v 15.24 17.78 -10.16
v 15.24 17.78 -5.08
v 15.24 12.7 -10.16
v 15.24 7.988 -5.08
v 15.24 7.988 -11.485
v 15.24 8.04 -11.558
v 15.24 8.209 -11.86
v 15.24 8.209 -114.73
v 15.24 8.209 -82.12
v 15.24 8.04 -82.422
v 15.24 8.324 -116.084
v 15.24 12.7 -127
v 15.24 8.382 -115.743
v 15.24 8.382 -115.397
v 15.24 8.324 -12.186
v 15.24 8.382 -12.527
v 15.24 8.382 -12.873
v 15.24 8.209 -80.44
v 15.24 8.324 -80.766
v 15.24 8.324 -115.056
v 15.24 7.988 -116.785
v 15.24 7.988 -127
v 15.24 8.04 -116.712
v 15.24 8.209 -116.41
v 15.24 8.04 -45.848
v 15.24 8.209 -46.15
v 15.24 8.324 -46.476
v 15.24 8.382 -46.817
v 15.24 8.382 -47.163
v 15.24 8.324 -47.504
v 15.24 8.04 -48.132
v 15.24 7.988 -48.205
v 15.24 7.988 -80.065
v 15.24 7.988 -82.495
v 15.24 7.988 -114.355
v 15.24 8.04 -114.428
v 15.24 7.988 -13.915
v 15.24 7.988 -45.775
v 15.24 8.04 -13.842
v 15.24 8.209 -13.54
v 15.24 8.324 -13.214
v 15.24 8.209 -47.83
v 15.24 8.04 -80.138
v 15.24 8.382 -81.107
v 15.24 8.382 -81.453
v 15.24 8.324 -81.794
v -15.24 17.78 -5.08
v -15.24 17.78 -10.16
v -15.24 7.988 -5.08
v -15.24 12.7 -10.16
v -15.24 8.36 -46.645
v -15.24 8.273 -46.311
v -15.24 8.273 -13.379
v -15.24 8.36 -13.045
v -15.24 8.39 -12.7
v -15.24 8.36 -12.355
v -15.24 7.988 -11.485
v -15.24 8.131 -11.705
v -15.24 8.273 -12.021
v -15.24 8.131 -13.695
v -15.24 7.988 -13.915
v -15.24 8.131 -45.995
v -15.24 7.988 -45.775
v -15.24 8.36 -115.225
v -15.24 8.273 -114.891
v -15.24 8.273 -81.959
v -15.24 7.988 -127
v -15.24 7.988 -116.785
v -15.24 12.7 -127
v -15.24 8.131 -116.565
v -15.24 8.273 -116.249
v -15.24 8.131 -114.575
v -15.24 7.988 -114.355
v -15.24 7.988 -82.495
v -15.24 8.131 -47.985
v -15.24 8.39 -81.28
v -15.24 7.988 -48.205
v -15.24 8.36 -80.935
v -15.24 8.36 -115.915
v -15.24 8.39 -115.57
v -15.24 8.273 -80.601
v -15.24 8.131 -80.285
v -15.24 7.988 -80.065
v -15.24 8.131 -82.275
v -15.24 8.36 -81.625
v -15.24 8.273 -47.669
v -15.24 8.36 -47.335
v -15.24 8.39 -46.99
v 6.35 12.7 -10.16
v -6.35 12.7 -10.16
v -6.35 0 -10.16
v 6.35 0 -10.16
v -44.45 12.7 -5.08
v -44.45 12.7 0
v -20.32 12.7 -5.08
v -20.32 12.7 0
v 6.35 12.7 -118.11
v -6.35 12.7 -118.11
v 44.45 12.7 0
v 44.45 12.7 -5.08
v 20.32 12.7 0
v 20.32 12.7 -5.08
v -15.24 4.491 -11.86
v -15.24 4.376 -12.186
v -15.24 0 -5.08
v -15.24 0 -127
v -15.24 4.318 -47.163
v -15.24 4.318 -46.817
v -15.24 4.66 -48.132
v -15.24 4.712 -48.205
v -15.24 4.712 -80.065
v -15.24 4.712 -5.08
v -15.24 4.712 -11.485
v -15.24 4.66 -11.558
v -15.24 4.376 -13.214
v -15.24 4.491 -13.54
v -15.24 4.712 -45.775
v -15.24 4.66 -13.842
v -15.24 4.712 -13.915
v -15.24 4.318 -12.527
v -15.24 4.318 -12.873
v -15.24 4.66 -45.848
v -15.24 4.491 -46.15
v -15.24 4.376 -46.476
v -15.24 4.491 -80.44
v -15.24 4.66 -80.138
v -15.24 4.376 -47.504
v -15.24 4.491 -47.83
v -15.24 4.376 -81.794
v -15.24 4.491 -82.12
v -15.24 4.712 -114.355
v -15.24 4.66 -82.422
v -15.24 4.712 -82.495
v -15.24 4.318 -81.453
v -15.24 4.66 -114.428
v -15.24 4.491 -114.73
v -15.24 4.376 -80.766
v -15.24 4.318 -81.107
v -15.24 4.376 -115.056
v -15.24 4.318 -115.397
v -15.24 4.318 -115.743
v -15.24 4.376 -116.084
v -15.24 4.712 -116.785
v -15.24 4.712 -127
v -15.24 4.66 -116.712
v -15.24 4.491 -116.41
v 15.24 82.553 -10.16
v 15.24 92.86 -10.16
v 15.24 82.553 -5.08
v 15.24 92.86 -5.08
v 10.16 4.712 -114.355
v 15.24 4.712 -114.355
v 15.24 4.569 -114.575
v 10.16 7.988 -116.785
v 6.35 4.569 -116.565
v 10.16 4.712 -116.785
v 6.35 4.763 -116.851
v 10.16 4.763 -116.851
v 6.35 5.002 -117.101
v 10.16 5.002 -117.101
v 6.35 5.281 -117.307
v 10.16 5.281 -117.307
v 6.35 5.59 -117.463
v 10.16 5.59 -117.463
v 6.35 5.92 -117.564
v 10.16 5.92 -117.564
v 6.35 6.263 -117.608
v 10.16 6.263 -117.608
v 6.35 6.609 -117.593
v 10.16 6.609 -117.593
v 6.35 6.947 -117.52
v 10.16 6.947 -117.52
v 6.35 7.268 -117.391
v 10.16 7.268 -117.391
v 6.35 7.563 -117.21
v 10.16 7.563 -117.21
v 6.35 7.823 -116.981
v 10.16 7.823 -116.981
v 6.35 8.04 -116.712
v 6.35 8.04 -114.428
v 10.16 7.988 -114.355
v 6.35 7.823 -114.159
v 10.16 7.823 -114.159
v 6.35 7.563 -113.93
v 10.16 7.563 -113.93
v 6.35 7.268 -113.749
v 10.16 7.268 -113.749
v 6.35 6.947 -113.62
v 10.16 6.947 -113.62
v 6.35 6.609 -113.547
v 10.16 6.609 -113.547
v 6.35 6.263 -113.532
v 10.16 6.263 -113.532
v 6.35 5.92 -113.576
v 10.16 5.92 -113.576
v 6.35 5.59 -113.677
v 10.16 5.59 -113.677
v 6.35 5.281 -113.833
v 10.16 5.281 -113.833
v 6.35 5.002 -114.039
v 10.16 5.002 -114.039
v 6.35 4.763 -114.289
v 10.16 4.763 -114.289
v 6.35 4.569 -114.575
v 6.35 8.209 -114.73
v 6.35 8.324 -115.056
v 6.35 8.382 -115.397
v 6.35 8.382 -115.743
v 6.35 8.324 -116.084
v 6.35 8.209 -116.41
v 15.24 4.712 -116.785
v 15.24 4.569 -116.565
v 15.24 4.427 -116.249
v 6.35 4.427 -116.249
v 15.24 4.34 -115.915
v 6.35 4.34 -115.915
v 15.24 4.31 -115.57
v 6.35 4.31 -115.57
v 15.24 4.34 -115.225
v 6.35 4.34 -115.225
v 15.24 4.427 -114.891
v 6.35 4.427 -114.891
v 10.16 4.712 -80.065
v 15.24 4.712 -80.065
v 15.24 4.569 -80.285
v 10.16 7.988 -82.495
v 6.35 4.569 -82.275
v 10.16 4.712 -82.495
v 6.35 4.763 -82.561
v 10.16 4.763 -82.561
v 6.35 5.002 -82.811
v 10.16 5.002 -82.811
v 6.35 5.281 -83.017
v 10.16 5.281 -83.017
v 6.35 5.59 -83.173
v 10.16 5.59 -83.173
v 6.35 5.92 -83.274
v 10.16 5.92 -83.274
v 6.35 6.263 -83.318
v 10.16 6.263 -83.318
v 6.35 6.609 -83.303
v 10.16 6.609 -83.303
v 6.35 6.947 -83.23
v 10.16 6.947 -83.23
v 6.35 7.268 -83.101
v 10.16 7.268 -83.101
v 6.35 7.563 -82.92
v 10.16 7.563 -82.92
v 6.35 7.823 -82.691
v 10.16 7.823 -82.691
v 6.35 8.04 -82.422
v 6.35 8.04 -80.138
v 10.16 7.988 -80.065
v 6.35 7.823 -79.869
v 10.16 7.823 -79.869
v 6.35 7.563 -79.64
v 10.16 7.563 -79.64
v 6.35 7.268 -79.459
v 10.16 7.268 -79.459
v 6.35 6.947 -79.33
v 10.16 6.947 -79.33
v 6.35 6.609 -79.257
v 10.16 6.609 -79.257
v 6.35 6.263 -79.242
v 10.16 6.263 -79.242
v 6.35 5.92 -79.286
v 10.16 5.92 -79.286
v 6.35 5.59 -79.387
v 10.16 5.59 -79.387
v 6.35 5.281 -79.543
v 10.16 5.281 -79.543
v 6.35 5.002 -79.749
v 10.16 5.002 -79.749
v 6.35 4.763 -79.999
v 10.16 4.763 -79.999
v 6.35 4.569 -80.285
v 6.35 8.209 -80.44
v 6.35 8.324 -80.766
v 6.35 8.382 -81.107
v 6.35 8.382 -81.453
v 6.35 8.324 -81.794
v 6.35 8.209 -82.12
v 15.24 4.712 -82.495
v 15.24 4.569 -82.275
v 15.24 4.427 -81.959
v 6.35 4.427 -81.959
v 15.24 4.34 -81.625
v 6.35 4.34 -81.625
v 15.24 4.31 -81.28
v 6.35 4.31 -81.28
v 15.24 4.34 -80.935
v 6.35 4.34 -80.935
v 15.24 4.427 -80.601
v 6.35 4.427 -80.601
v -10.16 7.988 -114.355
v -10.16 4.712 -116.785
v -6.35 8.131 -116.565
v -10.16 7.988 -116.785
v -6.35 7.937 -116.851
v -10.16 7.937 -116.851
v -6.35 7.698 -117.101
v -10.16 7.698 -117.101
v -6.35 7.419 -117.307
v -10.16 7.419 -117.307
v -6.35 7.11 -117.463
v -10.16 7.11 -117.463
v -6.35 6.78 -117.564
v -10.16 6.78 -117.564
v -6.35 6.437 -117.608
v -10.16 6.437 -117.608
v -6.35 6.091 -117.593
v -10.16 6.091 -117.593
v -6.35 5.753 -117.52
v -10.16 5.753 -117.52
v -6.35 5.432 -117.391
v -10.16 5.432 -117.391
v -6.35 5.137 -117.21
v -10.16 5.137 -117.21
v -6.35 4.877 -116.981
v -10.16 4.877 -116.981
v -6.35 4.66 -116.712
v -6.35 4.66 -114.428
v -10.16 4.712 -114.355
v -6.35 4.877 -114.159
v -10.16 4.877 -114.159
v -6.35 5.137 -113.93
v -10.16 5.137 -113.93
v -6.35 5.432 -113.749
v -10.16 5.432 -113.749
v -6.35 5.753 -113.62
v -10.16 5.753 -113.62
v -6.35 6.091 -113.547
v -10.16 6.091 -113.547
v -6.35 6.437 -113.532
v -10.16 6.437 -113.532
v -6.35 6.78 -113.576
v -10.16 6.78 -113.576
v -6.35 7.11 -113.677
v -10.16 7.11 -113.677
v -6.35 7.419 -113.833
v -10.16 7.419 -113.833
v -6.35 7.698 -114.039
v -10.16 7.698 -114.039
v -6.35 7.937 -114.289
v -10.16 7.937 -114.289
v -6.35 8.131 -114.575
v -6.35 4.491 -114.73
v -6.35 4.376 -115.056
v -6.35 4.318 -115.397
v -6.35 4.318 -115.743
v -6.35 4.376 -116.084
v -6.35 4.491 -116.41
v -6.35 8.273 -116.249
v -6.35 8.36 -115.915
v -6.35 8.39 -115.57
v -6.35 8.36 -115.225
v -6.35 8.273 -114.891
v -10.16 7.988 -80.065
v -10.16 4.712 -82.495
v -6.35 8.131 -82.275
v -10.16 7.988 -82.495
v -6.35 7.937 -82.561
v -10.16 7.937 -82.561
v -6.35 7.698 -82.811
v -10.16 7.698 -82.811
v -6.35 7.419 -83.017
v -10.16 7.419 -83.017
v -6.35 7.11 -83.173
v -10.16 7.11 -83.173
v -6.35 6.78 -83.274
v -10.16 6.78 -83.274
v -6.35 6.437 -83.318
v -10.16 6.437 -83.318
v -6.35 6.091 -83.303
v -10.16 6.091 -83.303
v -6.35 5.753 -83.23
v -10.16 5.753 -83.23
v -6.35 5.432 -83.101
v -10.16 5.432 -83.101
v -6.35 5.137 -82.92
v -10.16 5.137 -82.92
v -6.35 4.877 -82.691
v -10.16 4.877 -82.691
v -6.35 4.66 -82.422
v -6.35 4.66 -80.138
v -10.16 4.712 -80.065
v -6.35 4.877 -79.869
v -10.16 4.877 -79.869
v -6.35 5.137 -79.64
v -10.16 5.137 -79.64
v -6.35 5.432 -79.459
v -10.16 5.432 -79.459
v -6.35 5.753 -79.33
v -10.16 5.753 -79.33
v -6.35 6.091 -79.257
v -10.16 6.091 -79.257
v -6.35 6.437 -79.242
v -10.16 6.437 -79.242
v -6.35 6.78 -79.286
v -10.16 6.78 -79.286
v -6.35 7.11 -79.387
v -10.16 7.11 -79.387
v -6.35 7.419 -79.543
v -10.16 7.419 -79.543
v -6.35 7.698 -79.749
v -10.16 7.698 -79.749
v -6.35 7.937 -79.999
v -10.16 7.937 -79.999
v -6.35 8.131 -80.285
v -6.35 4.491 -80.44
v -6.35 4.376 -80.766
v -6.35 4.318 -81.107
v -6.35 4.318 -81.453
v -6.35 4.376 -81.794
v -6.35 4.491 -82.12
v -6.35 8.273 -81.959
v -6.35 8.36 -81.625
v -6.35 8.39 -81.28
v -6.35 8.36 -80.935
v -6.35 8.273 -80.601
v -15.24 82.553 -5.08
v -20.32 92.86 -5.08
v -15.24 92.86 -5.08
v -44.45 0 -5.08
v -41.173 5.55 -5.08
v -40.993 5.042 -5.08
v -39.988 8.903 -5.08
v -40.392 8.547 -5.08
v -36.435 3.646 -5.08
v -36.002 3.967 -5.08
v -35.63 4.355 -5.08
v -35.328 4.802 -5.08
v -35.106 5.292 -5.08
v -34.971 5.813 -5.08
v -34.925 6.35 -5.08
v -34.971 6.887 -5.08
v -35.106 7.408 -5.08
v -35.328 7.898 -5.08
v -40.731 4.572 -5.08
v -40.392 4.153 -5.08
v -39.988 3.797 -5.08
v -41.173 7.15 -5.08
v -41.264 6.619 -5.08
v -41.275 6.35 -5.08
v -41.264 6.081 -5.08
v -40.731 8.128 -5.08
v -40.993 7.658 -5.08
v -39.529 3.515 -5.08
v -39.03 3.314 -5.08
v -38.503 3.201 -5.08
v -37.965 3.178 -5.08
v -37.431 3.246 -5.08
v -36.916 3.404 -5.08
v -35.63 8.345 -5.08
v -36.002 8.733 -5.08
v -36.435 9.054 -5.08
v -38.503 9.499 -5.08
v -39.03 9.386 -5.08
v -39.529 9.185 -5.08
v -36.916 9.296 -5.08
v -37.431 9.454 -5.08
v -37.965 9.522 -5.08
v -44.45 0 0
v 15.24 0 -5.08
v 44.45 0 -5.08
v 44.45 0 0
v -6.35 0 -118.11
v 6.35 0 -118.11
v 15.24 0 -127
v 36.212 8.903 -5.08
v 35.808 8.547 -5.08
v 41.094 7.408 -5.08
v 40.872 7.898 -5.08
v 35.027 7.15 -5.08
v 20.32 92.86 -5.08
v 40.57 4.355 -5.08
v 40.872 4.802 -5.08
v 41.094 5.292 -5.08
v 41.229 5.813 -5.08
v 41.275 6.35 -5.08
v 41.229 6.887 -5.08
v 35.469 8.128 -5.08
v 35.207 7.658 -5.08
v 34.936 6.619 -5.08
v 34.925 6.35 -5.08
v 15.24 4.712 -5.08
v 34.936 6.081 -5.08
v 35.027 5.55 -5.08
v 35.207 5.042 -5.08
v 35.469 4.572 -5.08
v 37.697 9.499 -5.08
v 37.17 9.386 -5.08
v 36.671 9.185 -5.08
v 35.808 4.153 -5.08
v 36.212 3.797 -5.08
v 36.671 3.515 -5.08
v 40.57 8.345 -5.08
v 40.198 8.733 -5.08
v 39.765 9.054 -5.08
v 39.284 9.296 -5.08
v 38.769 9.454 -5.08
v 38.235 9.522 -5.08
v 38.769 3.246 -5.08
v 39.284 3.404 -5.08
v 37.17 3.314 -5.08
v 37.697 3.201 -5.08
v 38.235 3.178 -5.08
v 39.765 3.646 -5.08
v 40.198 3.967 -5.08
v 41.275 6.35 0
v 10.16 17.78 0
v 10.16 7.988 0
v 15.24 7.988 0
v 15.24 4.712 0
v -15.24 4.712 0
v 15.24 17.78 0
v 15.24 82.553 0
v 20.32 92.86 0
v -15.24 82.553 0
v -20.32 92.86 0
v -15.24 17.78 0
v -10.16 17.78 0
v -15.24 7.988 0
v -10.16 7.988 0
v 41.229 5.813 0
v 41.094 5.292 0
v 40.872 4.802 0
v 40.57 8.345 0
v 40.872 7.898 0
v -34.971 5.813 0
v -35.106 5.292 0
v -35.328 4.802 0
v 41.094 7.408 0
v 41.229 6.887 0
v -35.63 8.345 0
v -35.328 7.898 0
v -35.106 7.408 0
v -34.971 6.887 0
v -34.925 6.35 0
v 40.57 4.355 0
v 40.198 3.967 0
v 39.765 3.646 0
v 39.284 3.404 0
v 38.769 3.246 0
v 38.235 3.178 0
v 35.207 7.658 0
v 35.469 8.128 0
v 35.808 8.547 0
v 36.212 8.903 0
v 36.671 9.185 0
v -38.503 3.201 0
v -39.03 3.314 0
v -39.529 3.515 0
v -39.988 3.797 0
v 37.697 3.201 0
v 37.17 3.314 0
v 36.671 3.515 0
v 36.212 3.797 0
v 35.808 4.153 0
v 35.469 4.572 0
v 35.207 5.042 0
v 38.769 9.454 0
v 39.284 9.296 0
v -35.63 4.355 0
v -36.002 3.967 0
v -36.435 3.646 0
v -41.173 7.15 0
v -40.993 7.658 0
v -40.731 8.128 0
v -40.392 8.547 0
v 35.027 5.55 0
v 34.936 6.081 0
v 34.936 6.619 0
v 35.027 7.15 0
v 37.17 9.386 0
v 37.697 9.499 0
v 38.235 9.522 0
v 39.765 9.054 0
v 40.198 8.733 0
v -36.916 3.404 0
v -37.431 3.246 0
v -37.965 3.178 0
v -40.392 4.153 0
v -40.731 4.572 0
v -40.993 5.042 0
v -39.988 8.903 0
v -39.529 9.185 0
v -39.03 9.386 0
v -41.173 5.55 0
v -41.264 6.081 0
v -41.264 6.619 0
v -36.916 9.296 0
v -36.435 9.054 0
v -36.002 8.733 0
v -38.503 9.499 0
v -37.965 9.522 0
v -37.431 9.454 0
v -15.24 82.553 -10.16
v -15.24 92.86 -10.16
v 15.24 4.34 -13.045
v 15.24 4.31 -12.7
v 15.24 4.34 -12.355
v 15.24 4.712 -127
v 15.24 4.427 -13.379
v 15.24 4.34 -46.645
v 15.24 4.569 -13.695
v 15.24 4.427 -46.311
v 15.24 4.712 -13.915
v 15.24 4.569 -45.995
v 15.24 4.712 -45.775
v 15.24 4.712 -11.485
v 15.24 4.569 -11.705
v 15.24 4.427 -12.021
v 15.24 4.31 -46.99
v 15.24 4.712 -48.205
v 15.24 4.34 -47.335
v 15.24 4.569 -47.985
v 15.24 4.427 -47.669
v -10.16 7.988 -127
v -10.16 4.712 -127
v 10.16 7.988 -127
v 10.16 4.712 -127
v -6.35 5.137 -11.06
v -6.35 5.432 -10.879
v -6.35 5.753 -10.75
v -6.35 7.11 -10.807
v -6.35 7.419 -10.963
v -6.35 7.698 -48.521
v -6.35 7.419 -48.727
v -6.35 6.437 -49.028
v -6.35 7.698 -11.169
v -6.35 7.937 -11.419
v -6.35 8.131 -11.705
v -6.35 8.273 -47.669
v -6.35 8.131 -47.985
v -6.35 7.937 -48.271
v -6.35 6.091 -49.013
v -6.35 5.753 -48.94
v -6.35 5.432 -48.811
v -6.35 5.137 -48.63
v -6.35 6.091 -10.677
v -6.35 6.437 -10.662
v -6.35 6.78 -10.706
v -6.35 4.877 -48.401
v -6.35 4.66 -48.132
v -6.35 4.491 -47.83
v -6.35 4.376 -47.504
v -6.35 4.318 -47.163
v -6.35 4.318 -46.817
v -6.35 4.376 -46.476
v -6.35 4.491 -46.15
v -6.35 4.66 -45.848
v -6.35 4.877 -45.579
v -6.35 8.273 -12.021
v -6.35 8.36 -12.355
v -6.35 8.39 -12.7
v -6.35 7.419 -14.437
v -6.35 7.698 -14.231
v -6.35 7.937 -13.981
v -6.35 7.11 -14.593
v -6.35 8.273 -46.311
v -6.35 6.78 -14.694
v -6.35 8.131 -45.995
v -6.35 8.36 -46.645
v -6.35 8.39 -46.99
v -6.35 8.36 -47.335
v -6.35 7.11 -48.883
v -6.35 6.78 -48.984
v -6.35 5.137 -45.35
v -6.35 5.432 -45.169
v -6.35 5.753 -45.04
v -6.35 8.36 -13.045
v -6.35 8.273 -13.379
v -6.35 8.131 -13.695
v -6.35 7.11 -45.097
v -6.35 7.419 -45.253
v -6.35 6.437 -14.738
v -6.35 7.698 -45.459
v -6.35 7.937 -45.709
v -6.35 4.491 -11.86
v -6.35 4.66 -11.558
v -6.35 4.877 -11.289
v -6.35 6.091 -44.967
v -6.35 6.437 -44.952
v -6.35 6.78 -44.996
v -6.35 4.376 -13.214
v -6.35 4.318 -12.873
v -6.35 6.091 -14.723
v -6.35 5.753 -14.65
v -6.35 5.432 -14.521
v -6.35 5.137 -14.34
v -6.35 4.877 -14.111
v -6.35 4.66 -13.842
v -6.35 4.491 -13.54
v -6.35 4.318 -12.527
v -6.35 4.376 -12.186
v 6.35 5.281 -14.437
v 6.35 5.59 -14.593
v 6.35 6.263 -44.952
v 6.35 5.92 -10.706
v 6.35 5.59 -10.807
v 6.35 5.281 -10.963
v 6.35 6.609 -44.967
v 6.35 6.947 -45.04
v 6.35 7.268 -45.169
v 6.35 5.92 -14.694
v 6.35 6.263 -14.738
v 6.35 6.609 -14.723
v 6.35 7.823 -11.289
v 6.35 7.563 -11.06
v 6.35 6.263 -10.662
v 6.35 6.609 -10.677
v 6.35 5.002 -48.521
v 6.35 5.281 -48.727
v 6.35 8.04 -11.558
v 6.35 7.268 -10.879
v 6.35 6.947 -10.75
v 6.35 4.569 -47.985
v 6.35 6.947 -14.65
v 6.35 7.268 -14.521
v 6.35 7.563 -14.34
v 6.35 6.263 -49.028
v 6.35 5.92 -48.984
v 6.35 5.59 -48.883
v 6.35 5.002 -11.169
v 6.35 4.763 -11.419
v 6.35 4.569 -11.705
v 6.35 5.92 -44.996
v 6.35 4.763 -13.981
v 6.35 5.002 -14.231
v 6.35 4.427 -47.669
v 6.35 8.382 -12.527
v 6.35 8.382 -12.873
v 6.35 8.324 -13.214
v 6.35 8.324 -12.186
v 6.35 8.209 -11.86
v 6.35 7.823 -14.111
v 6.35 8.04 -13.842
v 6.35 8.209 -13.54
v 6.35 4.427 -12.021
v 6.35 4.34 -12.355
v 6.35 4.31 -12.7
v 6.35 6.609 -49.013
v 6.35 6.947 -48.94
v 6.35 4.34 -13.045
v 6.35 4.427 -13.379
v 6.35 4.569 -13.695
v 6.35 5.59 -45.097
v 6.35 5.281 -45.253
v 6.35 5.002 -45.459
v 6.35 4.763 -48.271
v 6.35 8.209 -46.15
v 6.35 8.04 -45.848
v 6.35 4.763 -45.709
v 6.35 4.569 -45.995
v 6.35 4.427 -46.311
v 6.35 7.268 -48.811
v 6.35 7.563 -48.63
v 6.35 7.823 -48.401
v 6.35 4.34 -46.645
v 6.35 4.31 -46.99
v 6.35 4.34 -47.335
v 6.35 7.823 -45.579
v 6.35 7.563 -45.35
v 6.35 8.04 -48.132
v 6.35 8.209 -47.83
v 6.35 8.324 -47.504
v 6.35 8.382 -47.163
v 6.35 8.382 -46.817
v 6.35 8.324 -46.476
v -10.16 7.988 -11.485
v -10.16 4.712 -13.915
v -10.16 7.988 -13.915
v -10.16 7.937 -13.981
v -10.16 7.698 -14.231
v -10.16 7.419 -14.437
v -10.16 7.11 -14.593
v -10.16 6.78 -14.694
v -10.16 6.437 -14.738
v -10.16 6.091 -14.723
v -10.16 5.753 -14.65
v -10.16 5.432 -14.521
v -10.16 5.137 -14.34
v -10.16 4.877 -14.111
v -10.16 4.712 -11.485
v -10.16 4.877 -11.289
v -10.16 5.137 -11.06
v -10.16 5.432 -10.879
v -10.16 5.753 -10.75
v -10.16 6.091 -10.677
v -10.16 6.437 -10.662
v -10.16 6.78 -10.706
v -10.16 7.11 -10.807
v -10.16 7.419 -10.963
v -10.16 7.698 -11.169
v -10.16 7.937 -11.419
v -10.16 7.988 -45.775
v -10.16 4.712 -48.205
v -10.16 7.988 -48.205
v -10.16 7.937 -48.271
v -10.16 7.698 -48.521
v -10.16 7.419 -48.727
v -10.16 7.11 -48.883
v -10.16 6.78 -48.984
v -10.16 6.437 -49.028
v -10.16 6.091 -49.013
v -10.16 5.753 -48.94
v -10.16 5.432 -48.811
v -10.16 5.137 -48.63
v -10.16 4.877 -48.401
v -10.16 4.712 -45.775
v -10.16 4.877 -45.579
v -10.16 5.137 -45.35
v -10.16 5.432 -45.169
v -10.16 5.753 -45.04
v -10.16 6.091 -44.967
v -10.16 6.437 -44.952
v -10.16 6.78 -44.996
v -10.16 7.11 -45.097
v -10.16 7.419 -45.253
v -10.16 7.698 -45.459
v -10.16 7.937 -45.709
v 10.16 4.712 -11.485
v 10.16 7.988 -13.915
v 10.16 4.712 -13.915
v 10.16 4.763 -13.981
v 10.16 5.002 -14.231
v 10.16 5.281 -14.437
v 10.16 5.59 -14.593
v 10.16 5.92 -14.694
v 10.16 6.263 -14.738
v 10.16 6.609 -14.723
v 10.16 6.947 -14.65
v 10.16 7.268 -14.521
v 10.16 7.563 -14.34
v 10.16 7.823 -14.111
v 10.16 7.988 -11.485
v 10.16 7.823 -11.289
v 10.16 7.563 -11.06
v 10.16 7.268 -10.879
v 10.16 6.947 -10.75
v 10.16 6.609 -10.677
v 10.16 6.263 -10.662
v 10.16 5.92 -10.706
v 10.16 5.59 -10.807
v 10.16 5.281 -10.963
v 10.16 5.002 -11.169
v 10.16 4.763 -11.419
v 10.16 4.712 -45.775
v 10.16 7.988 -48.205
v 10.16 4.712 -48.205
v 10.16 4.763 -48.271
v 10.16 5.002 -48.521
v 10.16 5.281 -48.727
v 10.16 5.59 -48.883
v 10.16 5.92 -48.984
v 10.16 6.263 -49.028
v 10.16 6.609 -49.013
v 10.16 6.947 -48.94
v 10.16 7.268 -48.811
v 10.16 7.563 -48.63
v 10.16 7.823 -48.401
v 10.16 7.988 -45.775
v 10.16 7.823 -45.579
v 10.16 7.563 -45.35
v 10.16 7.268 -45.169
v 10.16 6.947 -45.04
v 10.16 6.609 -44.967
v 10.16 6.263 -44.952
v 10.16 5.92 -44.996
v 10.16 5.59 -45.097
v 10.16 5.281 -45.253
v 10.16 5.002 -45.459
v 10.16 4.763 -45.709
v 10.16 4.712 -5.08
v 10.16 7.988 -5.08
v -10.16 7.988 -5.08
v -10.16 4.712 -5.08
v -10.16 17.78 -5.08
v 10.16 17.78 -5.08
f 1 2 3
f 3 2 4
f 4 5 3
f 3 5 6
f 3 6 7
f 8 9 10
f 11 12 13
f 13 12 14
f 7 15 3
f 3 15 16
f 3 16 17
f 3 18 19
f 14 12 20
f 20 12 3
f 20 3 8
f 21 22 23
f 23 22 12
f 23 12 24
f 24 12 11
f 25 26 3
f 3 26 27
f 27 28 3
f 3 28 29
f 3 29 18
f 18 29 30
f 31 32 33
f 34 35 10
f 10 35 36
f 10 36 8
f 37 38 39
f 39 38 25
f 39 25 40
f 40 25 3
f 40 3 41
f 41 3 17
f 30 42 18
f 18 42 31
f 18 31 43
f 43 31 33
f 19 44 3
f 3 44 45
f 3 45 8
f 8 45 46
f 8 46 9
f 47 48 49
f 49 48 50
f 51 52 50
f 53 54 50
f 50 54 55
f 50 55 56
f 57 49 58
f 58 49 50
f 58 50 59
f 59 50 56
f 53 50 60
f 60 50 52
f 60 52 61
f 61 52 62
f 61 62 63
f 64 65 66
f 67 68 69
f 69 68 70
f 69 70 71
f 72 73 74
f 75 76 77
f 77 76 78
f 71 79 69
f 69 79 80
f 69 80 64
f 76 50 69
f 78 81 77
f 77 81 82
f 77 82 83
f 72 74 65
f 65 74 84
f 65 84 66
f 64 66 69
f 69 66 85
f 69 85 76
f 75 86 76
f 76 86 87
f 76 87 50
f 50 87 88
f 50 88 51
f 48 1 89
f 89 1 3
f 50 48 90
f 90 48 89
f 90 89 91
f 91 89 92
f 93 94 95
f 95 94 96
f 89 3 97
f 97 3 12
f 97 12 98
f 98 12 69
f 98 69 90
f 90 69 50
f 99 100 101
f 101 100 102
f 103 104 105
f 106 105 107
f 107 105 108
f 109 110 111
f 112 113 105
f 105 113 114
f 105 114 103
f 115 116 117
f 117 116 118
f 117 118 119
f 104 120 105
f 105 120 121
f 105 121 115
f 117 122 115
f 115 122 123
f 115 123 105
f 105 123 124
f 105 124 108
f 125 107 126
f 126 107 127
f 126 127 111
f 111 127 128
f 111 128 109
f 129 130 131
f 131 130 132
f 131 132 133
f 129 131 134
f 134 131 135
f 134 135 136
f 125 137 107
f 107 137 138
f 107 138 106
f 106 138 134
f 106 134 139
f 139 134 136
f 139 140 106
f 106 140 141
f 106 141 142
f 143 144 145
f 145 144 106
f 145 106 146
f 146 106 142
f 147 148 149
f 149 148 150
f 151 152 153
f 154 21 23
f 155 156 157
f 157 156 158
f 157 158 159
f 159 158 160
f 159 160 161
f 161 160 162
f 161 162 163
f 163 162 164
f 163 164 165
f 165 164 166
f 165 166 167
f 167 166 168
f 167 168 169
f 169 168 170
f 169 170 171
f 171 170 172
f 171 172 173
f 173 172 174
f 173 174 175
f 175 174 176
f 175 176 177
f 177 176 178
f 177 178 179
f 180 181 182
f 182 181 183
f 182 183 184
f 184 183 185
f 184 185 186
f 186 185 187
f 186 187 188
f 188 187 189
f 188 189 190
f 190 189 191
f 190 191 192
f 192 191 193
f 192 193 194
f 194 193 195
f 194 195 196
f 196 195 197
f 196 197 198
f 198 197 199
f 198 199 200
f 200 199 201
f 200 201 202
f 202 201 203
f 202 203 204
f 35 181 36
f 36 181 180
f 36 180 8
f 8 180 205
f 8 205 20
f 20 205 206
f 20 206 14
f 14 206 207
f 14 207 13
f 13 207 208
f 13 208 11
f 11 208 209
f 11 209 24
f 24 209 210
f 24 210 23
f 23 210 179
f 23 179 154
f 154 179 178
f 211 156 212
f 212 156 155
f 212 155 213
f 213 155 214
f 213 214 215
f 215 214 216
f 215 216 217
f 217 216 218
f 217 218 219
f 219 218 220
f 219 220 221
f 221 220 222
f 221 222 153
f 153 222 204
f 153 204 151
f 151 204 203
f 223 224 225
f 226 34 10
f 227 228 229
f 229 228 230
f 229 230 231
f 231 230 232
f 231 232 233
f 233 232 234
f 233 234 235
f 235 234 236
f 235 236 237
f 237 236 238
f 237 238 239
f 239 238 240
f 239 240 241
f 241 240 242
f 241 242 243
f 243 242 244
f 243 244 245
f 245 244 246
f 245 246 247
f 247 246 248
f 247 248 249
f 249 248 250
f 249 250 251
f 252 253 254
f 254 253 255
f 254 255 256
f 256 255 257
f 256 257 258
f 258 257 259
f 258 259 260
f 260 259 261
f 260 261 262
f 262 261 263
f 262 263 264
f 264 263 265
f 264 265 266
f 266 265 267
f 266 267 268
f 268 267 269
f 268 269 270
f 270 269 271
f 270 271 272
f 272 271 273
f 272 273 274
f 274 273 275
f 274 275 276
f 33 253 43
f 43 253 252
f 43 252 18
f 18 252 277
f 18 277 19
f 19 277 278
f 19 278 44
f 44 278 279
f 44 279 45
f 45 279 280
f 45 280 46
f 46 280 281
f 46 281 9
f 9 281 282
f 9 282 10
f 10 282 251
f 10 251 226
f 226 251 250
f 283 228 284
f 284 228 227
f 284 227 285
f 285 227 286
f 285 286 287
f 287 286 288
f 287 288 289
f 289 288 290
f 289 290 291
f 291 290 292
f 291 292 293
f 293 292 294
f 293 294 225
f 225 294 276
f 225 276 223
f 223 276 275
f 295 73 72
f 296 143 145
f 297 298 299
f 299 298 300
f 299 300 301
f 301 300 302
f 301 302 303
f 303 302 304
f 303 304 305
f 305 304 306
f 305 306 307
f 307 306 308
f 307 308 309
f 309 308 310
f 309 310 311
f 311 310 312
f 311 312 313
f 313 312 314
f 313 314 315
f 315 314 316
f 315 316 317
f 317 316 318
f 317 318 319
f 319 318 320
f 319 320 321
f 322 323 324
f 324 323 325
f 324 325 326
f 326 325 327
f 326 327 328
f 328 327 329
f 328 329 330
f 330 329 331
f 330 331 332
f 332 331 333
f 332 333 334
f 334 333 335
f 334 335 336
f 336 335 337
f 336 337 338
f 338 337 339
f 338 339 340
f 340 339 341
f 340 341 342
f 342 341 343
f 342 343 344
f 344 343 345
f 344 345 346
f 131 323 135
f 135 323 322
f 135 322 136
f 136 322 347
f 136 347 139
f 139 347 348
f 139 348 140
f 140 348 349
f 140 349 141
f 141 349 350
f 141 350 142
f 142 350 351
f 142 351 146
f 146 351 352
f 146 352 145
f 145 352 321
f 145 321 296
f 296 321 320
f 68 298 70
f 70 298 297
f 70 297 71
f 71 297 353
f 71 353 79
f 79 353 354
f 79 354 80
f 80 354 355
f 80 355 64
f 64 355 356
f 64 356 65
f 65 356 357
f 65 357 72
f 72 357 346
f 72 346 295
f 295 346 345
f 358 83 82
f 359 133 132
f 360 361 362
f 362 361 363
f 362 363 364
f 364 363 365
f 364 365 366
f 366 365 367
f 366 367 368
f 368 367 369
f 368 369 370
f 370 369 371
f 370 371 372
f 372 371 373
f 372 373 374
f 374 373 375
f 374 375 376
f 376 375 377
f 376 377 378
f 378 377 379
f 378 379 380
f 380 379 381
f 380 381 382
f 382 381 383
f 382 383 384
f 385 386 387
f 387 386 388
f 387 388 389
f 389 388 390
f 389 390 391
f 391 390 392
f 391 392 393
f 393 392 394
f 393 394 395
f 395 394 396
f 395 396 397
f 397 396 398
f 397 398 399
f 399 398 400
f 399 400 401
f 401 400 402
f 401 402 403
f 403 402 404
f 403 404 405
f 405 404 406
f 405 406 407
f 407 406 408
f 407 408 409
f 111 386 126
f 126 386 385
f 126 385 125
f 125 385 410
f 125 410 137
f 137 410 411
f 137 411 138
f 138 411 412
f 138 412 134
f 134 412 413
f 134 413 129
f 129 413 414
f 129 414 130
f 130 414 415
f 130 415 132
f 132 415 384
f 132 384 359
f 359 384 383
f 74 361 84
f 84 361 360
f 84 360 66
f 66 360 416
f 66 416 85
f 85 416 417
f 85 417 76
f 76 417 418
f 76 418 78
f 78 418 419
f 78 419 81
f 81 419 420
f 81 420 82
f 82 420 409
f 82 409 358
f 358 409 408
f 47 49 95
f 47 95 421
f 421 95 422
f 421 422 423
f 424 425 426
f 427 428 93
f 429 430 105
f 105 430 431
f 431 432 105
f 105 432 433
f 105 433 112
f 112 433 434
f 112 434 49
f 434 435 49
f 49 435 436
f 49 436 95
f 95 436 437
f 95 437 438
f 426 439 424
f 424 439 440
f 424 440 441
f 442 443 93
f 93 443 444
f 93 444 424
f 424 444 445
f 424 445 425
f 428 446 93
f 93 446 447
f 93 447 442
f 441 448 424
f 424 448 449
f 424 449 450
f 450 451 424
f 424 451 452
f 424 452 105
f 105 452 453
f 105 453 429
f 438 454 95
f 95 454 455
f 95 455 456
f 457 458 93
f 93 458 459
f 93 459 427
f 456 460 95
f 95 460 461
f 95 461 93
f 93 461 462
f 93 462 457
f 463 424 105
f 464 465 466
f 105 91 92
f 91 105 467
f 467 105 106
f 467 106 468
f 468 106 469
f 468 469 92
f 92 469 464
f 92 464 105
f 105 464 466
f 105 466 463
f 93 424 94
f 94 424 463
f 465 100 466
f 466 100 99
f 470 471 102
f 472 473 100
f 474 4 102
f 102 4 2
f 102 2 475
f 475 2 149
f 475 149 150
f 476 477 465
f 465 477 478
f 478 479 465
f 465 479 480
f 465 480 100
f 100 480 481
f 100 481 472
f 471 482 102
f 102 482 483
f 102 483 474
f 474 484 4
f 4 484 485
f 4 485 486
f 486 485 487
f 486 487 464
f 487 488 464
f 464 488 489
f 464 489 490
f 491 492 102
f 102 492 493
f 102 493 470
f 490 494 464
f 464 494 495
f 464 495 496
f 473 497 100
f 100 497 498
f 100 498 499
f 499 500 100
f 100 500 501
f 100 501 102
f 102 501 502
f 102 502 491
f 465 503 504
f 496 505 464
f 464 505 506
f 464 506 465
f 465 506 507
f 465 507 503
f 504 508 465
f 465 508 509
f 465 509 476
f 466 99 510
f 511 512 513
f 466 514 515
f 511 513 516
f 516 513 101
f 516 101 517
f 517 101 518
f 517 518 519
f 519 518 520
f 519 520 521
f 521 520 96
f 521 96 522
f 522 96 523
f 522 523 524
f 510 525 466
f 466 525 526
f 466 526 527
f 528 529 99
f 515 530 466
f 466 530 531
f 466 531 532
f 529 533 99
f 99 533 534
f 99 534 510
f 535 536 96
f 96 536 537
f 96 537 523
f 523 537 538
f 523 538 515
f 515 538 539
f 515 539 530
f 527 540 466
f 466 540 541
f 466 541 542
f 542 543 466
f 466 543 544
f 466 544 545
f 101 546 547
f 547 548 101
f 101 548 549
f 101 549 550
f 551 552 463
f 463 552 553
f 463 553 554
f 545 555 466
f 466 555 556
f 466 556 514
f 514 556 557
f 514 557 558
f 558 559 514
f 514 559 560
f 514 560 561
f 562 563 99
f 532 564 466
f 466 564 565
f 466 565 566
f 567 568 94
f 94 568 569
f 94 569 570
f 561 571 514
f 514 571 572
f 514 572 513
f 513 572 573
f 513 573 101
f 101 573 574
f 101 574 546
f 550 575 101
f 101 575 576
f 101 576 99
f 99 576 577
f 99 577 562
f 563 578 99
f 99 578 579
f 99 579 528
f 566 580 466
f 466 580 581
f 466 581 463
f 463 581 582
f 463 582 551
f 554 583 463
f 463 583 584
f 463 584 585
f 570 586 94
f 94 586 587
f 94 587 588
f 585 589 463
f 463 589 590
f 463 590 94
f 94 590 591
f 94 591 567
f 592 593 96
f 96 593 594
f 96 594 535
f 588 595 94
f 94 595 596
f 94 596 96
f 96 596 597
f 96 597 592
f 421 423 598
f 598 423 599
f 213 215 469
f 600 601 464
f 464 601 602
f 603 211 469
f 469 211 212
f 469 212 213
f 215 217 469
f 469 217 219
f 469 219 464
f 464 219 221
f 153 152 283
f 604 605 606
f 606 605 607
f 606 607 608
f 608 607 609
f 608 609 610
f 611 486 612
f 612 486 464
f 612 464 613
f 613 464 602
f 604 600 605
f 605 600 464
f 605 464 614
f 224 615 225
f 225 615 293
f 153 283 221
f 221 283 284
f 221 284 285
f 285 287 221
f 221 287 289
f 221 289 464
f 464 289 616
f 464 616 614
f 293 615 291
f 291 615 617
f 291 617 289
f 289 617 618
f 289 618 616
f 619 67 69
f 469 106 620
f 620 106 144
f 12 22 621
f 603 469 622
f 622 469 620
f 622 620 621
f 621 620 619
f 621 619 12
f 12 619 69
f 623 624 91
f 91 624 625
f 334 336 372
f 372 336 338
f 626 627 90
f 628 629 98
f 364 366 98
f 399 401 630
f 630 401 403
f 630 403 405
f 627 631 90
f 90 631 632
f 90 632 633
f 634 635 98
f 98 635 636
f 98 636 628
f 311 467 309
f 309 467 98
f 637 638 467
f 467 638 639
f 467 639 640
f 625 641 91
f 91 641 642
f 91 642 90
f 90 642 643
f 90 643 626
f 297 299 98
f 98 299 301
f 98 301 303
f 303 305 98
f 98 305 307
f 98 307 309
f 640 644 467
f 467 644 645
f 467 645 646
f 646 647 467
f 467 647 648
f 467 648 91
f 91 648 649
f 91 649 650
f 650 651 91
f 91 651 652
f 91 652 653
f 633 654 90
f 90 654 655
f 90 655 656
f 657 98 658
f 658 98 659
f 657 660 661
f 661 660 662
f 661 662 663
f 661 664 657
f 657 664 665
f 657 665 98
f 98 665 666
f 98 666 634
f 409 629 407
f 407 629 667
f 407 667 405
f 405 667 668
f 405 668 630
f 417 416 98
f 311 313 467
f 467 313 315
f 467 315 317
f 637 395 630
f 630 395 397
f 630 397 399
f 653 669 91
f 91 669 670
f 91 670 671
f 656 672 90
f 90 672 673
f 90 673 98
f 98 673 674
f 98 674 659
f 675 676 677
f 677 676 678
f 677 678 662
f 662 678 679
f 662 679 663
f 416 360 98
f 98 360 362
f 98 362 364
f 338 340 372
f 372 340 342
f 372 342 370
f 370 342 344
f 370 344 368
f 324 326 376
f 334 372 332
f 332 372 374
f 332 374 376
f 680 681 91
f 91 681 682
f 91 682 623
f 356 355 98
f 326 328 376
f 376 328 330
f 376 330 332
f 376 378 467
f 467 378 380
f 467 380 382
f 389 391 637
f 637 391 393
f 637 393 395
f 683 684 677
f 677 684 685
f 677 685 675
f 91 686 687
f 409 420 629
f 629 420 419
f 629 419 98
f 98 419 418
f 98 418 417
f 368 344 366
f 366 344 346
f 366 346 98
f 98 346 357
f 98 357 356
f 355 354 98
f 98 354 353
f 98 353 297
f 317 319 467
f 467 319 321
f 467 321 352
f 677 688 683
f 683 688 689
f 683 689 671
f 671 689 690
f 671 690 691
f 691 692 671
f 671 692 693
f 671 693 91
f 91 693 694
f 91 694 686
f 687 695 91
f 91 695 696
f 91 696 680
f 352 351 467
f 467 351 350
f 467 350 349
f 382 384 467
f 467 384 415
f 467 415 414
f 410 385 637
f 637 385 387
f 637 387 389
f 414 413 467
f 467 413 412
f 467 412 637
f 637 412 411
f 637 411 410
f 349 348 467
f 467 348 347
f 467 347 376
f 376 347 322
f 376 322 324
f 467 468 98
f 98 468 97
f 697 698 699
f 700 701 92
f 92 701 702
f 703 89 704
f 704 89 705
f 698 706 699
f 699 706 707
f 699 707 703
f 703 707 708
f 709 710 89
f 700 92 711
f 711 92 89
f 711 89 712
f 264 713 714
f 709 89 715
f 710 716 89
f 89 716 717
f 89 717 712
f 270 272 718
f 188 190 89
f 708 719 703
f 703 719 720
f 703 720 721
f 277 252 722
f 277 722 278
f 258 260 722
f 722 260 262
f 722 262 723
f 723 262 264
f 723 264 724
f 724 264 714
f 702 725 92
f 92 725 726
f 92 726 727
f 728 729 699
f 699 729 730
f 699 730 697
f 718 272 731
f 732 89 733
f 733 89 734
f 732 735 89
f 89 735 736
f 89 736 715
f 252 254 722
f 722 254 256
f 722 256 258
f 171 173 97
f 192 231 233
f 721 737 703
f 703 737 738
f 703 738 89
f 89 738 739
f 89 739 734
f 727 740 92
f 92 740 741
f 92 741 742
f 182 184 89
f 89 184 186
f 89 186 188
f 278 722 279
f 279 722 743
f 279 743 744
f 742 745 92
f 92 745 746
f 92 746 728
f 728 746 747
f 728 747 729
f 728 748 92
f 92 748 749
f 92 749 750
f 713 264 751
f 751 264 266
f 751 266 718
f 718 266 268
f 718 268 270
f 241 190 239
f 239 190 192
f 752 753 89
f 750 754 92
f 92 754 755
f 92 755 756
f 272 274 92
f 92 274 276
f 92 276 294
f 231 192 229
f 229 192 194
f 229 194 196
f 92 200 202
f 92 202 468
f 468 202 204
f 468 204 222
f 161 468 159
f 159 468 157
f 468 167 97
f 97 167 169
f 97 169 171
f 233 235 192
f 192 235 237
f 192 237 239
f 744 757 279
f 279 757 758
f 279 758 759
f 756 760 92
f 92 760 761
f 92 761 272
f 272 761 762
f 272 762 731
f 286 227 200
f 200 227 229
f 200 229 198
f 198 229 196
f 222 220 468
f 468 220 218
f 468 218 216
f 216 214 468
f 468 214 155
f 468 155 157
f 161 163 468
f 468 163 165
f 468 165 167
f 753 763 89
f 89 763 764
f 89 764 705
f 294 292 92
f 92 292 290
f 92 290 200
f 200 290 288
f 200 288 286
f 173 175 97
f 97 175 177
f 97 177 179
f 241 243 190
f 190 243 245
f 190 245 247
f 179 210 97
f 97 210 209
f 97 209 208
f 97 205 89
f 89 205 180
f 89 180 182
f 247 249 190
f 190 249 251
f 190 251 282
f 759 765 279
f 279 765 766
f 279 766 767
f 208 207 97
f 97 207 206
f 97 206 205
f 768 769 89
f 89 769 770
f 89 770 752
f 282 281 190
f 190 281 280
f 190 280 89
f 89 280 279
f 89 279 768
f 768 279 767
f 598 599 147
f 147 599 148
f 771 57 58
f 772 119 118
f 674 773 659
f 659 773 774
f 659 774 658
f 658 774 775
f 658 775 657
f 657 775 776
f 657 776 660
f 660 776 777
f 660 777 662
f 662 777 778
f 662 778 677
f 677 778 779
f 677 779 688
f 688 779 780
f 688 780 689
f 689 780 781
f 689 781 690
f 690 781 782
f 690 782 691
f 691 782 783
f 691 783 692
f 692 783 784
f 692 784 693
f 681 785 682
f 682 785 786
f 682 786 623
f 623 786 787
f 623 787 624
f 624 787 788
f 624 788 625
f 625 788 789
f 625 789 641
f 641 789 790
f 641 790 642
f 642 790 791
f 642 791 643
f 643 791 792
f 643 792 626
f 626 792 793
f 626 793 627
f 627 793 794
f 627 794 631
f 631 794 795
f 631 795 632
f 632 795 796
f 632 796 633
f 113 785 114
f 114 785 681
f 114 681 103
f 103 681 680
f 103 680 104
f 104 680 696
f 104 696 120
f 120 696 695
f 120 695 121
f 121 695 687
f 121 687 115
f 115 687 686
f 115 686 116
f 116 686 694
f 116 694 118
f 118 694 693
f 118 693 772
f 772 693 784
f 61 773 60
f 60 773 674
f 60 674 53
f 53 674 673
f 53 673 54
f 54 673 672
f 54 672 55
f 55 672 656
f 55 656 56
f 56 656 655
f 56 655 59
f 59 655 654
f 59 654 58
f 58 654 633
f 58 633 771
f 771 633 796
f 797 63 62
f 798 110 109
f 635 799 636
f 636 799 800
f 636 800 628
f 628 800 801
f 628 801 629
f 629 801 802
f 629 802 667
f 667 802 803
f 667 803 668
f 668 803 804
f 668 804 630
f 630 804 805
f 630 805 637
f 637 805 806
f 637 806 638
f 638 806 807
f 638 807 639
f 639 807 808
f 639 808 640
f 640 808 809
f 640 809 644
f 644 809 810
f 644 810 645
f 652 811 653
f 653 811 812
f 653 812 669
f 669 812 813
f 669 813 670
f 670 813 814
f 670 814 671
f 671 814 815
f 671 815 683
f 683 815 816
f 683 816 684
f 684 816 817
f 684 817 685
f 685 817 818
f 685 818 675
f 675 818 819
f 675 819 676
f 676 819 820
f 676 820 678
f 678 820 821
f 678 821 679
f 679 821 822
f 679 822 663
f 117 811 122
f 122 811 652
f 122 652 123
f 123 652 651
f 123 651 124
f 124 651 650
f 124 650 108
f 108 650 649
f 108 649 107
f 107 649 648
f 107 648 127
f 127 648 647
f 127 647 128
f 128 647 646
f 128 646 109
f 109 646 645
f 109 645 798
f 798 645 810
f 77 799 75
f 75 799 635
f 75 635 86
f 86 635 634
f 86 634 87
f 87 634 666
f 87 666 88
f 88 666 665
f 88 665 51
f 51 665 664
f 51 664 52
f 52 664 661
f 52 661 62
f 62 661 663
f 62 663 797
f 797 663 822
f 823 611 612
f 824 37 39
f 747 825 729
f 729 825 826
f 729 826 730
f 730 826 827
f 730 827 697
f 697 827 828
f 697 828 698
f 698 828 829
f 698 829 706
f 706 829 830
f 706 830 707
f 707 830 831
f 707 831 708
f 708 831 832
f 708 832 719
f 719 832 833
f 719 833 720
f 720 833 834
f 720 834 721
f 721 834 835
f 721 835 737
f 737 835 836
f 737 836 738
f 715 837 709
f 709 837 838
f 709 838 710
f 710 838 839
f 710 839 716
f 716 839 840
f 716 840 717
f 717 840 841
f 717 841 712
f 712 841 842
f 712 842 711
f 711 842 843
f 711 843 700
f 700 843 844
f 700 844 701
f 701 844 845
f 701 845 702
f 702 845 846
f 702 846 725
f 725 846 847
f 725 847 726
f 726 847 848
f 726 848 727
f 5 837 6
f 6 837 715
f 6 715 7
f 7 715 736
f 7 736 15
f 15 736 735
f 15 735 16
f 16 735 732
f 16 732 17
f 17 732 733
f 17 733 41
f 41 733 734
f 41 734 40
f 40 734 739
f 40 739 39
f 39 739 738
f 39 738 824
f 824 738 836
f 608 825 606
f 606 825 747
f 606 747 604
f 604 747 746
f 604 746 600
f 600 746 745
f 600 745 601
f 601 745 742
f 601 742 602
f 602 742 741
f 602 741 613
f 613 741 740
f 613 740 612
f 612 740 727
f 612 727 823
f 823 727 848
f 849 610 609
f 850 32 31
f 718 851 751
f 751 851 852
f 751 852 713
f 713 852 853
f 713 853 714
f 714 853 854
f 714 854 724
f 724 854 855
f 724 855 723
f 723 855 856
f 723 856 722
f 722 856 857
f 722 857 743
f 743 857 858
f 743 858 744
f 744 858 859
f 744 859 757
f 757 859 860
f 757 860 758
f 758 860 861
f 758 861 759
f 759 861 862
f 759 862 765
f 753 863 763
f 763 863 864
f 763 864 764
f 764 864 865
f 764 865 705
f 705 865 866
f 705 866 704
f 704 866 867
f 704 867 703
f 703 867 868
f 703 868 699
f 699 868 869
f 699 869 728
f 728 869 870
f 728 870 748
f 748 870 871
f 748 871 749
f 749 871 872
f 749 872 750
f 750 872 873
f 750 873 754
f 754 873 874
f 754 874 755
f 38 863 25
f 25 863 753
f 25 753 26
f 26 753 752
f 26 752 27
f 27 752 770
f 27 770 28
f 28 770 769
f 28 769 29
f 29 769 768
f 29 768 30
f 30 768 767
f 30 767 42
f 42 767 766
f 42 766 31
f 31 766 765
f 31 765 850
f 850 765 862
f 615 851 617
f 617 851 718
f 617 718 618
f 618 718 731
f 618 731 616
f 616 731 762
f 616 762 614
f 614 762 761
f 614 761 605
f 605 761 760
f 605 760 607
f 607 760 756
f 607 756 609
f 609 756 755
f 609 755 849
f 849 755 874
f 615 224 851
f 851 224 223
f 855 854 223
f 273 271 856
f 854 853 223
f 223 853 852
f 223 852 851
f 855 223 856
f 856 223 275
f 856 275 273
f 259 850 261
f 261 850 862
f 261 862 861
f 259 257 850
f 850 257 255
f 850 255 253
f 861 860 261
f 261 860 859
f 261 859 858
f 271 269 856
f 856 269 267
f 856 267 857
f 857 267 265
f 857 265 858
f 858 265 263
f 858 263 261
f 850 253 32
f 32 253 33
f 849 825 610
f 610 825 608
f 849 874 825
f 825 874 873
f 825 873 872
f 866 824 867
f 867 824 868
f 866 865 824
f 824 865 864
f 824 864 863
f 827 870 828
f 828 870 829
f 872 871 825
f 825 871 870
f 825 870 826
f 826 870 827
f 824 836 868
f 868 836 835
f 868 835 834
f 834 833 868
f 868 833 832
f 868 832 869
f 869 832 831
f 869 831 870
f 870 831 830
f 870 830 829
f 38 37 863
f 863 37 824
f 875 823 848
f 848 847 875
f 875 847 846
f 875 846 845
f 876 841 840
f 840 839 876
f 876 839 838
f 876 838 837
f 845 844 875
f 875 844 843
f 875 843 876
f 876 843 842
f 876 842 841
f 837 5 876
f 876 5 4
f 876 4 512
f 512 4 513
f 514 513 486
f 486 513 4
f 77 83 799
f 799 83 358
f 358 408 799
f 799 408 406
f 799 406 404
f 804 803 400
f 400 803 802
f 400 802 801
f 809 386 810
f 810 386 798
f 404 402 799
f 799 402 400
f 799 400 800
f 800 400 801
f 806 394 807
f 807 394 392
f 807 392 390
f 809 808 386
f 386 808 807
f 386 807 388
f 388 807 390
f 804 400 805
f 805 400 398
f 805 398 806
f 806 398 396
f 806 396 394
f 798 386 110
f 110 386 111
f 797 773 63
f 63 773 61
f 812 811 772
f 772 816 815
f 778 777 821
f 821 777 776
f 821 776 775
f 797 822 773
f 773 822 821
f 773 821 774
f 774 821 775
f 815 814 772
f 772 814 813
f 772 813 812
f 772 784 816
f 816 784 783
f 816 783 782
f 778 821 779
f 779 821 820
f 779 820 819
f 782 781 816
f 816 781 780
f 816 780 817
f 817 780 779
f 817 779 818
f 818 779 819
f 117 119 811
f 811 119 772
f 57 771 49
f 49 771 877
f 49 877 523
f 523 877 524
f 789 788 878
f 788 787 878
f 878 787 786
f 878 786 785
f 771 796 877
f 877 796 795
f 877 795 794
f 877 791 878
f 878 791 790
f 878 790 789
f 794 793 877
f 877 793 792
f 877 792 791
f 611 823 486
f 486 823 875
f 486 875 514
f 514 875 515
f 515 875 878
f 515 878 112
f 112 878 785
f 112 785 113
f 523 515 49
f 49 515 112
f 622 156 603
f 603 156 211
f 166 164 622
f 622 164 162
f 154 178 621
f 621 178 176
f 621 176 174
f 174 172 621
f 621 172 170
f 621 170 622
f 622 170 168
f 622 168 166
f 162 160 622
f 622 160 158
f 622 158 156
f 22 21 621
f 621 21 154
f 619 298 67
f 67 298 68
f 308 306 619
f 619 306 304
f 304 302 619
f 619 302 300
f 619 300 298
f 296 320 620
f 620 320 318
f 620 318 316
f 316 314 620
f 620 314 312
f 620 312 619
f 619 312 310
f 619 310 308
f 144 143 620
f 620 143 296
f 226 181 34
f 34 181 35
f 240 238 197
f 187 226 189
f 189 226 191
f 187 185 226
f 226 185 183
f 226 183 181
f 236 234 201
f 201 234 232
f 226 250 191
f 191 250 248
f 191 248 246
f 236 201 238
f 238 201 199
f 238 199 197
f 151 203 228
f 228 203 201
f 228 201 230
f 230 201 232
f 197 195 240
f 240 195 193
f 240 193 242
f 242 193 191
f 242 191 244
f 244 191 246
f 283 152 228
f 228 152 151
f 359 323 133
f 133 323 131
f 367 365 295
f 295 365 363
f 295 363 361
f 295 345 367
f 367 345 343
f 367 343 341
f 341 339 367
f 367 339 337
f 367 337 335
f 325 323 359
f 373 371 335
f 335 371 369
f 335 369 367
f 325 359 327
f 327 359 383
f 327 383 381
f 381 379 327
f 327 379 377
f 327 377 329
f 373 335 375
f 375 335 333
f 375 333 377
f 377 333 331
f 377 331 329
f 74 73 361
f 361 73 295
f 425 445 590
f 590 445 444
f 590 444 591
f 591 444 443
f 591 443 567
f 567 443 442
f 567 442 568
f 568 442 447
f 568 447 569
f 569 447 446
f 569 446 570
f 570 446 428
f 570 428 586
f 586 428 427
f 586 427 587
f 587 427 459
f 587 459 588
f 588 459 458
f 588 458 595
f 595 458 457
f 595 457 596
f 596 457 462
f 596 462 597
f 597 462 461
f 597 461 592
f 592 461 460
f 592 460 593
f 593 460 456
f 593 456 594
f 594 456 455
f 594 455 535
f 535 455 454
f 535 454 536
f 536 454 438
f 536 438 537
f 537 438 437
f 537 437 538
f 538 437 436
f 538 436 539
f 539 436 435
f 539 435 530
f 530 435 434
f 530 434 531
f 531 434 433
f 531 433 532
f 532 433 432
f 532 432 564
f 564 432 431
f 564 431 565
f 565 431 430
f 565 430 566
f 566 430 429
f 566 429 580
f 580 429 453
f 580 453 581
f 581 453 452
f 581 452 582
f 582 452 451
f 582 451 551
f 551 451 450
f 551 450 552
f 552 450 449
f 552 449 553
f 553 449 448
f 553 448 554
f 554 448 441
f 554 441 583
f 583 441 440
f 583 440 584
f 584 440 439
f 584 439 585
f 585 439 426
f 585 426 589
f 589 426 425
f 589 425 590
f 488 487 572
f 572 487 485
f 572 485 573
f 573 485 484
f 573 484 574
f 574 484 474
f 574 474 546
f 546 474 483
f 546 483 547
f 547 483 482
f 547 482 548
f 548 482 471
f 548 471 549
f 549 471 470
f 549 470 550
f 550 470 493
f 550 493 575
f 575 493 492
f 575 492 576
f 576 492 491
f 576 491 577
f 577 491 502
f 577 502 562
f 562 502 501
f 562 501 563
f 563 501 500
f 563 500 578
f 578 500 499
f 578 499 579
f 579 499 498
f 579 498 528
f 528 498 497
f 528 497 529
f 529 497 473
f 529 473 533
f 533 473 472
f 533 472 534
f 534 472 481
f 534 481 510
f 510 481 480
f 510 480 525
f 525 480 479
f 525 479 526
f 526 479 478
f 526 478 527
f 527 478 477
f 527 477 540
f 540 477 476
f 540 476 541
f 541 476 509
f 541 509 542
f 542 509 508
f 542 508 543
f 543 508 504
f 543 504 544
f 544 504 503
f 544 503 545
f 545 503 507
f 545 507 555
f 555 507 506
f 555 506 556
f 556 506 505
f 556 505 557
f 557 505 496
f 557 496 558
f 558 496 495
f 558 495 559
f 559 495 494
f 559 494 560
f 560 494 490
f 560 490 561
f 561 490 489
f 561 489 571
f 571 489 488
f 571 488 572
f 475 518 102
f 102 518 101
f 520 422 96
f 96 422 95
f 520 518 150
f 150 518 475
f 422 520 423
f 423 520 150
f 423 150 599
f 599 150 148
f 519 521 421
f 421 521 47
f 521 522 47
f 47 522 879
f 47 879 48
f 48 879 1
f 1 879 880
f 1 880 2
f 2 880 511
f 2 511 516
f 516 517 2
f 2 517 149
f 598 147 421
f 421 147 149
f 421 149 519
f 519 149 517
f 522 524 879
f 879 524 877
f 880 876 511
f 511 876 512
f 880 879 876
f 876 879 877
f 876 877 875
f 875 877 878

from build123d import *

# Parameters (mm, degrees)
SKETCH1_W                     = 88.9
SKETCH1_H                     = 12.7
SMALL_BASE_EXTRUDE_DEPTH      = 5.08
SKETCH3_W                     = 30.48
SKETCH3_H                     = 12.7
MAIN_TOWER_EXTRUDE_DEPTH      = 121.92
SKETCH4_W                     = 12.7
SKETCH4_H                     = 107.95
FILAMENT_CHANNEL_CUT_DEPTH    = 13.7
SKETCH6_R                     = 2.03962
CUT_EXTRUDE3_DEPTH            = 8.89
LPATTERN1_COUNT               = 4
LPATTERN1_PITCH               = 34.29
SKETCH9_R                     = 2.03962
CUT_EXTRUDE6_DEPTH            = 8.89
LPATTERN2_COUNT               = 4
LPATTERN2_PITCH               = 34.29
SKETCH10_W                    = 5.08
SKETCH10_H                    = 3.2766
WIRE_CHANNEL_CUT_DEPTH        = 228.6
SKETCH11_R                    = 3.175
MOUNTING_BOLT_HOLE_CUTS_DEPTH = 25.4
COPPER_BOARD_EXTRUDE_DEPTH    = 80.16
SKETCH13_W                    = 30.48
SKETCH13_H                    = 64.772627344
COPPER_BOARD_CUT_DEPTH        = 10.16
WIRE_ESCAPE_HOLE_CUT_DEPTH    = 5.08


with BuildPart() as part:
    # Sketch1 → Small Base Extrude (new body)
    with BuildSketch(Plane(origin=(0, 0, 0), x_dir=(1, 0, 0), z_dir=(0, 0, -1))):
        with Locations((0, -6.35)):
            Rectangle(SKETCH1_W, SKETCH1_H)
    extrude(amount=SMALL_BASE_EXTRUDE_DEPTH)

    # Sketch3 → Main Tower Extrude (add)
    with BuildSketch(Plane(origin=(0, 0, -5.08), x_dir=(1, 0, 0), z_dir=(0, 0, -1))):
        with Locations((0, -6.35)):
            Rectangle(SKETCH3_W, SKETCH3_H)
    extrude(amount=MAIN_TOWER_EXTRUDE_DEPTH)

    # Sketch4 → Filament Channel Cut (cut, through all)
    with BuildSketch(Plane(origin=(0, 12.7, 0), x_dir=(1, 0, 0), z_dir=(0, 1, 0))):
        with Locations((0, 64.135)):
            Rectangle(SKETCH4_W, SKETCH4_H)
    extrude(amount=-FILAMENT_CHANNEL_CUT_DEPTH, mode=Mode.SUBTRACT)

    # Sketch6 → Cut-Extrude3 (cut)
    with BuildSketch(Plane(origin=(-6.35, 0, 0), x_dir=(0, 0, -1), z_dir=(1, 0, 0))):
        with Locations((12.7, 6.35)):
            Circle(SKETCH6_R)
    cut_extrude3 = extrude(amount=-CUT_EXTRUDE3_DEPTH, mode=Mode.SUBTRACT)

    # LPattern1: Cut-Extrude3 ×4
    with Locations(*[(0, 0, -i * LPATTERN1_PITCH) for i in range(1, LPATTERN1_COUNT)]):
        add(cut_extrude3, mode=Mode.SUBTRACT)

    # Sketch9 → Cut-Extrude6 (cut)
    with BuildSketch(Plane(origin=(6.35, 57.001874069, -16.025022356), x_dir=(0, 0, 1), z_dir=(-1, 0, 0))):
        with Locations((3.325022356, -50.651874069)):
            Circle(SKETCH9_R)
    cut_extrude6 = extrude(amount=-CUT_EXTRUDE6_DEPTH, mode=Mode.SUBTRACT)

    # LPattern2: Cut-Extrude6 ×4
    with Locations(*[(0, 0, -i * LPATTERN2_PITCH) for i in range(1, LPATTERN2_COUNT)]):
        add(cut_extrude6, mode=Mode.SUBTRACT)

    # Sketch10 → Wire Channel Cut (cut)
    with BuildSketch(Plane(origin=(0, 0, -127), x_dir=(-1, 0, 0), z_dir=(0, 0, -1))):
        with Locations((12.7, 6.35)):
            Rectangle(SKETCH10_W, SKETCH10_H)
        with Locations((-12.7, 6.35)):
            Rectangle(SKETCH10_W, SKETCH10_H)
    extrude(amount=-WIRE_CHANNEL_CUT_DEPTH, mode=Mode.SUBTRACT)

    # Sketch11 → Mounting Bolt Hole Cuts (cut)
    with BuildSketch(Plane.XY):
        with Locations((38.1, 6.35)):
            Circle(SKETCH11_R)
        with Locations((-38.1, 6.35)):
            Circle(SKETCH11_R)
    extrude(amount=-MOUNTING_BOLT_HOLE_CUTS_DEPTH, mode=Mode.SUBTRACT)

    # Sketch12 → Copper Board Extrude (add)
    with BuildSketch(Plane(origin=(0, 12.7, 0), x_dir=(1, 0, 0), z_dir=(0, 1, 0))):
        Polygon((-15.24, 0), (15.24, 0), (20.32, 0), (20.32, 5.08), (15.24, 5.08), (15.24, 10.16), (-15.24, 10.16), (-15.24, 5.08), (-20.32, 5.08), (-20.32, 0), align=None)
    extrude(amount=COPPER_BOARD_EXTRUDE_DEPTH)

    # Sketch13 → Copper Board Cut (cut)
    with BuildSketch(Plane(origin=(0, 0, -10.16), x_dir=(-1, 0, 0), z_dir=(0, 0, -1))):
        with Locations((0, 50.166313672)):
            Rectangle(SKETCH13_W, SKETCH13_H)
    extrude(amount=-COPPER_BOARD_CUT_DEPTH, mode=Mode.SUBTRACT)

    # Sketch14 → Wire Escape Hole Cut (cut)
    with BuildSketch(Plane.XY):
        Polygon((-10.16, 4.7117), (10.16, 4.7117), (10.16, 7.9883), (10.16, 17.78), (-10.16, 17.78), (-10.16, 6.0833), align=None)
    extrude(amount=-WIRE_ESCAPE_HOLE_CUT_DEPTH, mode=Mode.SUBTRACT)


solid = part.part
